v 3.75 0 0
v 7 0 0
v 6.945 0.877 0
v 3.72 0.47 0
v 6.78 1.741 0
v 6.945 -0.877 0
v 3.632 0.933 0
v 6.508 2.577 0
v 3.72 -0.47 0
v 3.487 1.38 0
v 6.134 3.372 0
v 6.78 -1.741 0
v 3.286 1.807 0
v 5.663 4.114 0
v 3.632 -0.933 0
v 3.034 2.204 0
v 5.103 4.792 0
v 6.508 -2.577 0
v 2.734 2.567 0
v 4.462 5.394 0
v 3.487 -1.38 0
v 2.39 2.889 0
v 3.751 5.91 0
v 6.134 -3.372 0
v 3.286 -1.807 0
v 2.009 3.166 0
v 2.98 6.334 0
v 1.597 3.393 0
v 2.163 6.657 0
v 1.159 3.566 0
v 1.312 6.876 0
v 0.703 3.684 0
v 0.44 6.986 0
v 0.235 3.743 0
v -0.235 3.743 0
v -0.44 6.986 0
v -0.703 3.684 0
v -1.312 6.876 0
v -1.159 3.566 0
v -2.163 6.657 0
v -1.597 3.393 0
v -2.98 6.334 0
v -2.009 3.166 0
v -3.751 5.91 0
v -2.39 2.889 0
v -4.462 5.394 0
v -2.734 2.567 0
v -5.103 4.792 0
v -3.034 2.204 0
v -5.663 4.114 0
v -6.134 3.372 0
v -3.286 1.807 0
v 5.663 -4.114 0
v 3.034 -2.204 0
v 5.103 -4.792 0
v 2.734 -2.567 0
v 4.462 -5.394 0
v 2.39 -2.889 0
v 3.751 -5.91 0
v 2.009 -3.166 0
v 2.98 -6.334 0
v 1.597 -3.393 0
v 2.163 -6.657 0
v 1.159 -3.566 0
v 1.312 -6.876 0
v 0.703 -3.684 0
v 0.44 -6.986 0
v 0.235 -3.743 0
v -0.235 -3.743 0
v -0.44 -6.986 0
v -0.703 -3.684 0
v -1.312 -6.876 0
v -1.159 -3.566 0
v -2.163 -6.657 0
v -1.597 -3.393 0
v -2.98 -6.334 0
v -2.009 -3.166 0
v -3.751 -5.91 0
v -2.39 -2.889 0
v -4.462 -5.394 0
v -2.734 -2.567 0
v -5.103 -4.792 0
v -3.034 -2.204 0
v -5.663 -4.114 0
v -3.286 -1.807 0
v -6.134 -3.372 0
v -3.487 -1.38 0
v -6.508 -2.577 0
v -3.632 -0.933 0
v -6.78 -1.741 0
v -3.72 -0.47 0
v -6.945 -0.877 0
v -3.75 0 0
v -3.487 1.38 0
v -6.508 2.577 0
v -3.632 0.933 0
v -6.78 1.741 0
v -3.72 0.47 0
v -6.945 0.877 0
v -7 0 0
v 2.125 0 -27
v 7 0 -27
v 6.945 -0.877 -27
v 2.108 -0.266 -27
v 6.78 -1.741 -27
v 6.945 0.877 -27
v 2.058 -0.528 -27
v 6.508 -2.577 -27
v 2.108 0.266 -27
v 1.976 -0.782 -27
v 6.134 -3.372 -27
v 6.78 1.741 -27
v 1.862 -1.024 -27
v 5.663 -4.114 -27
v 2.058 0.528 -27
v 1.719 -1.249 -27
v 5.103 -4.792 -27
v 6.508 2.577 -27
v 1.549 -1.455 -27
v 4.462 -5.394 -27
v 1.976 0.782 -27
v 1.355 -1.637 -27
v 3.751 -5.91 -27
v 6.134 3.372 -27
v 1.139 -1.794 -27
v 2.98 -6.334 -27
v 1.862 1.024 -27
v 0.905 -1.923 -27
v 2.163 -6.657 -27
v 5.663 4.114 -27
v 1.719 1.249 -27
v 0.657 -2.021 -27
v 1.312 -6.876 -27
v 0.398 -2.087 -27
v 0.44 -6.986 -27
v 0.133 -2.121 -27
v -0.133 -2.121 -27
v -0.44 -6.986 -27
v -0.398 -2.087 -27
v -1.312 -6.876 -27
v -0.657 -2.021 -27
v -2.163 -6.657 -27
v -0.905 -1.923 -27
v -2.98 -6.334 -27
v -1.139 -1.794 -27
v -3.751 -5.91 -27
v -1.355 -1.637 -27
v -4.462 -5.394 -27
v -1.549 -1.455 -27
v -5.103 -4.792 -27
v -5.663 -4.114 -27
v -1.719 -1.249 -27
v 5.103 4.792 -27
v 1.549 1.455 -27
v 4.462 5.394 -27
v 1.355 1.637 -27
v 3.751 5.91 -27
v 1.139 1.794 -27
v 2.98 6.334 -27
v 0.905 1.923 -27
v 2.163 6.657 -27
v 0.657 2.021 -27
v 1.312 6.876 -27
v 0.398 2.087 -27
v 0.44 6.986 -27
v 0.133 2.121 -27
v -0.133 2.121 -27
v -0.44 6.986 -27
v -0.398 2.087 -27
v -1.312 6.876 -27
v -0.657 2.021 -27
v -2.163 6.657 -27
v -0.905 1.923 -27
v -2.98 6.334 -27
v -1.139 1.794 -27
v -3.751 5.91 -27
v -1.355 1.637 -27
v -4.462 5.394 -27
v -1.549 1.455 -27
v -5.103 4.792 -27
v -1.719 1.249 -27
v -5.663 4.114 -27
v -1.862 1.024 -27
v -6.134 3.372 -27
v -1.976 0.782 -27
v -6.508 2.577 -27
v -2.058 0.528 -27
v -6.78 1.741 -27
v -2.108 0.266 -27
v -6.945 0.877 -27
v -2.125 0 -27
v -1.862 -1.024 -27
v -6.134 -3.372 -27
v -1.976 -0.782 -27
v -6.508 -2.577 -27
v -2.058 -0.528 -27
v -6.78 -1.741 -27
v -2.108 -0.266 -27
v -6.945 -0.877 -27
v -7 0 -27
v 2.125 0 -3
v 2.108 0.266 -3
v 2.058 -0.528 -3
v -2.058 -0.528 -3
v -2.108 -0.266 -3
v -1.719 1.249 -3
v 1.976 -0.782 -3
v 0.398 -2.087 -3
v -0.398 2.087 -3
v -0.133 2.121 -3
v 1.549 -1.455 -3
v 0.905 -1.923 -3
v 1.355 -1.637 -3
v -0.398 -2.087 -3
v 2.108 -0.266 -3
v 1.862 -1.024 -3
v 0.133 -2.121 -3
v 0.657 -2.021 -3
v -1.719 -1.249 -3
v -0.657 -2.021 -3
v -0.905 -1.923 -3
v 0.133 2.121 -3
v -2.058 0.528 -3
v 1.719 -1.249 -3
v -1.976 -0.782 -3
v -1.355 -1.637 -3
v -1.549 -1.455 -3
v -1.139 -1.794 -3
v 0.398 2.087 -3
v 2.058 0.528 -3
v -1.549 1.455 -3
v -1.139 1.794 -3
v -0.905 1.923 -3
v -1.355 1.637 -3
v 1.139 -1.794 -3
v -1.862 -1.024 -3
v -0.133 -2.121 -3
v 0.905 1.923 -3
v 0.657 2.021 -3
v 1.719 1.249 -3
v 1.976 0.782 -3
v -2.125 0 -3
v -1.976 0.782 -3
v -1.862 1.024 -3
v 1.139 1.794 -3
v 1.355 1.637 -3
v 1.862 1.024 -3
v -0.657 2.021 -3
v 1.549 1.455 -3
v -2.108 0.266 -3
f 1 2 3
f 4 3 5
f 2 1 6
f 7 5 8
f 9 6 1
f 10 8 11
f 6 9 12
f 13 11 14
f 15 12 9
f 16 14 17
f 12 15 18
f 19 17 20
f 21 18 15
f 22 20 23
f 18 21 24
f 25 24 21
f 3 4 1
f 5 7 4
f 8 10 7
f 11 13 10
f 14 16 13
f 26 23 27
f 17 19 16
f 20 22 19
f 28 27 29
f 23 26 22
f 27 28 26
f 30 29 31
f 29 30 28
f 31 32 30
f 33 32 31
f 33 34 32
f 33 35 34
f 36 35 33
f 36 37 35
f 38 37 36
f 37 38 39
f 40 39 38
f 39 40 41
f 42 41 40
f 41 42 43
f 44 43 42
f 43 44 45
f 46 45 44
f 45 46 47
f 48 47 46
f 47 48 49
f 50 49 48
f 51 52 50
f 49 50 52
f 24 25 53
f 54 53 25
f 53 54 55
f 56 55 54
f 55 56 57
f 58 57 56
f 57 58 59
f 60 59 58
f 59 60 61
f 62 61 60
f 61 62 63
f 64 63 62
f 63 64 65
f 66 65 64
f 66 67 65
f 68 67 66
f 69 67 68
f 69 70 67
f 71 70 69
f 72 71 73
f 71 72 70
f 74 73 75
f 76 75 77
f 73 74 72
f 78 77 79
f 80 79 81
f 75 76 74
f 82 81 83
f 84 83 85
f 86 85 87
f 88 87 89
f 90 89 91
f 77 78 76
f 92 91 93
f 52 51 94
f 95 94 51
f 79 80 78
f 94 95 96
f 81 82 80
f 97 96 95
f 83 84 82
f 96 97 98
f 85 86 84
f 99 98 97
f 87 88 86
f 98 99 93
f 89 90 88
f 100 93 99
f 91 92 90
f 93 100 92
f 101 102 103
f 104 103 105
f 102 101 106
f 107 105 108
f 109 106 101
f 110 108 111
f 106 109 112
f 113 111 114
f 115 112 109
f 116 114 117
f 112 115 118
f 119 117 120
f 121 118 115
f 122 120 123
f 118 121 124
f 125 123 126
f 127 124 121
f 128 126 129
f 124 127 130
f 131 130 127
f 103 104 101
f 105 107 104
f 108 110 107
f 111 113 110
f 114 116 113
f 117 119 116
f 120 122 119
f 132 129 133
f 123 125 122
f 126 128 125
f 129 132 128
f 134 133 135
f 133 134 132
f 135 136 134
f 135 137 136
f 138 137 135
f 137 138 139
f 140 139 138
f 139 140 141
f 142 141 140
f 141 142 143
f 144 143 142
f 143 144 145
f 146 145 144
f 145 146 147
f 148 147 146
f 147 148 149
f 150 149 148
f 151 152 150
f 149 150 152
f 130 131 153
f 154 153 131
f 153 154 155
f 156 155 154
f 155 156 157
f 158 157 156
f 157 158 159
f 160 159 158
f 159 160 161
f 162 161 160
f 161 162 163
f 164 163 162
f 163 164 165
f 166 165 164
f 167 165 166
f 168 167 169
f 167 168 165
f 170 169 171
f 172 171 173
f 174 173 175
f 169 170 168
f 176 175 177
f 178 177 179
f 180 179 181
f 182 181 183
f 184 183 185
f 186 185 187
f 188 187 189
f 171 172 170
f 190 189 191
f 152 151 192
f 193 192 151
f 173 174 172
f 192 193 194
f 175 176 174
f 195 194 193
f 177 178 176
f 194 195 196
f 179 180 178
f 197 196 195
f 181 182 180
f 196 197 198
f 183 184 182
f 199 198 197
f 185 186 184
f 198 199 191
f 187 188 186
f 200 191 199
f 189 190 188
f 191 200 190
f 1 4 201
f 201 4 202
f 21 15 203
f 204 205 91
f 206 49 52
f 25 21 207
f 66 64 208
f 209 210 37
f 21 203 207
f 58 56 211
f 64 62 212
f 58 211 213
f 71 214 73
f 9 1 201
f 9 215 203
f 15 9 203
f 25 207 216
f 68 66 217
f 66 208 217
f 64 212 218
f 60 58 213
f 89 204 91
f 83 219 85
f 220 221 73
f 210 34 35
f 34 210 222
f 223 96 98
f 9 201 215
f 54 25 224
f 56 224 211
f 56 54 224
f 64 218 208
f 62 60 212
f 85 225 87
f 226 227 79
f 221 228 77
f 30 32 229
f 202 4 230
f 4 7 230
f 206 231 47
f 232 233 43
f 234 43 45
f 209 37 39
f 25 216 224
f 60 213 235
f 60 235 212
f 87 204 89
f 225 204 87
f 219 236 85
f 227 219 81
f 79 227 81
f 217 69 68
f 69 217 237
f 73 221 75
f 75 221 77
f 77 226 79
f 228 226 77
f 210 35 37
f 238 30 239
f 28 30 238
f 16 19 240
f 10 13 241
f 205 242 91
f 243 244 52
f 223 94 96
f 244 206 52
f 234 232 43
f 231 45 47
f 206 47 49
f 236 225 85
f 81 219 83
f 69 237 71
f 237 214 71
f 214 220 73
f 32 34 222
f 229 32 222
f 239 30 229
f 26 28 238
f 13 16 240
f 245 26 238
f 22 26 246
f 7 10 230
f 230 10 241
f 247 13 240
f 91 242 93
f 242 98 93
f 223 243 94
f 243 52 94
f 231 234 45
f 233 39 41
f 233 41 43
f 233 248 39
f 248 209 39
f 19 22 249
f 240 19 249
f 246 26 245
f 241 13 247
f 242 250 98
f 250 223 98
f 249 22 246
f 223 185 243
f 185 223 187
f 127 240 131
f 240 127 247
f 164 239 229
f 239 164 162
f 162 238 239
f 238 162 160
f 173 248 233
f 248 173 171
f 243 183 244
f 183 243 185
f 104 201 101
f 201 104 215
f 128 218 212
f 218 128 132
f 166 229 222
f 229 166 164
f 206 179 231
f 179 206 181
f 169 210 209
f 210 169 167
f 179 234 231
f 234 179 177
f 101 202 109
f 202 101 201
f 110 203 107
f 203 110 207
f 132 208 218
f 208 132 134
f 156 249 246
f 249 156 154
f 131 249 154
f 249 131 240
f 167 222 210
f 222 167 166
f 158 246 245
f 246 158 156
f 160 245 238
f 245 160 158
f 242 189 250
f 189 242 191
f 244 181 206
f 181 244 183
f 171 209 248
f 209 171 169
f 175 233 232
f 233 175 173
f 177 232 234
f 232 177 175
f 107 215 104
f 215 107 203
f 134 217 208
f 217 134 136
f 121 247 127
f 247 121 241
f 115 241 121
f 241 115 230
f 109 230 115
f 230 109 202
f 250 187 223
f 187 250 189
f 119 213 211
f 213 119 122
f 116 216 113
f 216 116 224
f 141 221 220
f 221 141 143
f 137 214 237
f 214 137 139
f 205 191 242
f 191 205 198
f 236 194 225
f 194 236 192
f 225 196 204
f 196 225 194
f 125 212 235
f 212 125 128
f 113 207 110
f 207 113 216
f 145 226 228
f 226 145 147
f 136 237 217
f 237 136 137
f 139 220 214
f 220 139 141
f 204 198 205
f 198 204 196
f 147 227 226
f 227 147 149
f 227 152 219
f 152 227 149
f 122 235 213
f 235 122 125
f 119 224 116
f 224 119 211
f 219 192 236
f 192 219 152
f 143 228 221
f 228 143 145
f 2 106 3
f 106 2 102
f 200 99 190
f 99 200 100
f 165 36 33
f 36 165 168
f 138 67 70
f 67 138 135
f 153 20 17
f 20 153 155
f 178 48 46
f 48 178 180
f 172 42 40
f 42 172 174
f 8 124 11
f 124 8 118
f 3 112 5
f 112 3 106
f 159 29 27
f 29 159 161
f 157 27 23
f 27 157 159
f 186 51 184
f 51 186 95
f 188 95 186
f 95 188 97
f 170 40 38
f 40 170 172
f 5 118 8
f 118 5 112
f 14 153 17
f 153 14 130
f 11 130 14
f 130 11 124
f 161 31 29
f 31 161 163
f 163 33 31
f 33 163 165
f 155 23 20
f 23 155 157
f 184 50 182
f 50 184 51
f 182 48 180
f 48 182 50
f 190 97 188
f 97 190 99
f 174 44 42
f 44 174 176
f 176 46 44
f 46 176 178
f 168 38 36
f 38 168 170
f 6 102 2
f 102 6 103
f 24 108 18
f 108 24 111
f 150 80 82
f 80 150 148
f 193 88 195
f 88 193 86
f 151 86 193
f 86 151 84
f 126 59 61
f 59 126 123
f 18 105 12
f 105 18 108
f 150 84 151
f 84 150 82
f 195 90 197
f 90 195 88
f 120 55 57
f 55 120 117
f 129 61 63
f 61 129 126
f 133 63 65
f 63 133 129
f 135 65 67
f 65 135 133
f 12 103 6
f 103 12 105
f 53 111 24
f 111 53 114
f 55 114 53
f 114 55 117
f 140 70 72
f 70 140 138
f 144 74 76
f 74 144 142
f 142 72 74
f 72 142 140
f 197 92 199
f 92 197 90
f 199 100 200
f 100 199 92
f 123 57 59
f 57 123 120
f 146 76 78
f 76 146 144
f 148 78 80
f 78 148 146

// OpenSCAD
$fn = 50;


difference() {
	union() {
		translate(v = [0, 0, -27.0000000000]) {
			cylinder(h = 27, r = 7.0000000000);
		}
		cylinder(h = 0, r = 13.0000000000);
	}
	union() {
		translate(v = [0, 0, 0]) {
			rotate(a = [0, 0, 0]) {
				difference() {
					union() {
						#translate(v = [0, 0, -27.0000000000]) {
							cylinder(h = 27, r = 2.0000000000);
						}
						#translate(v = [0, 0, -3]) {
							cylinder(h = 3, r = 7.0000000000, r1 = 2.1250000000, r2 = 3.7500000000);
						}
						#translate(v = [0, 0, -27.0000000000]) {
							cylinder(h = 27, r = 2.1250000000);
						}
						#translate(v = [0, 0, -27.0000000000]) {
							cylinder(h = 27, r = 2.0000000000);
						}
					}
					union();
				}
			}
		}
	}
}
